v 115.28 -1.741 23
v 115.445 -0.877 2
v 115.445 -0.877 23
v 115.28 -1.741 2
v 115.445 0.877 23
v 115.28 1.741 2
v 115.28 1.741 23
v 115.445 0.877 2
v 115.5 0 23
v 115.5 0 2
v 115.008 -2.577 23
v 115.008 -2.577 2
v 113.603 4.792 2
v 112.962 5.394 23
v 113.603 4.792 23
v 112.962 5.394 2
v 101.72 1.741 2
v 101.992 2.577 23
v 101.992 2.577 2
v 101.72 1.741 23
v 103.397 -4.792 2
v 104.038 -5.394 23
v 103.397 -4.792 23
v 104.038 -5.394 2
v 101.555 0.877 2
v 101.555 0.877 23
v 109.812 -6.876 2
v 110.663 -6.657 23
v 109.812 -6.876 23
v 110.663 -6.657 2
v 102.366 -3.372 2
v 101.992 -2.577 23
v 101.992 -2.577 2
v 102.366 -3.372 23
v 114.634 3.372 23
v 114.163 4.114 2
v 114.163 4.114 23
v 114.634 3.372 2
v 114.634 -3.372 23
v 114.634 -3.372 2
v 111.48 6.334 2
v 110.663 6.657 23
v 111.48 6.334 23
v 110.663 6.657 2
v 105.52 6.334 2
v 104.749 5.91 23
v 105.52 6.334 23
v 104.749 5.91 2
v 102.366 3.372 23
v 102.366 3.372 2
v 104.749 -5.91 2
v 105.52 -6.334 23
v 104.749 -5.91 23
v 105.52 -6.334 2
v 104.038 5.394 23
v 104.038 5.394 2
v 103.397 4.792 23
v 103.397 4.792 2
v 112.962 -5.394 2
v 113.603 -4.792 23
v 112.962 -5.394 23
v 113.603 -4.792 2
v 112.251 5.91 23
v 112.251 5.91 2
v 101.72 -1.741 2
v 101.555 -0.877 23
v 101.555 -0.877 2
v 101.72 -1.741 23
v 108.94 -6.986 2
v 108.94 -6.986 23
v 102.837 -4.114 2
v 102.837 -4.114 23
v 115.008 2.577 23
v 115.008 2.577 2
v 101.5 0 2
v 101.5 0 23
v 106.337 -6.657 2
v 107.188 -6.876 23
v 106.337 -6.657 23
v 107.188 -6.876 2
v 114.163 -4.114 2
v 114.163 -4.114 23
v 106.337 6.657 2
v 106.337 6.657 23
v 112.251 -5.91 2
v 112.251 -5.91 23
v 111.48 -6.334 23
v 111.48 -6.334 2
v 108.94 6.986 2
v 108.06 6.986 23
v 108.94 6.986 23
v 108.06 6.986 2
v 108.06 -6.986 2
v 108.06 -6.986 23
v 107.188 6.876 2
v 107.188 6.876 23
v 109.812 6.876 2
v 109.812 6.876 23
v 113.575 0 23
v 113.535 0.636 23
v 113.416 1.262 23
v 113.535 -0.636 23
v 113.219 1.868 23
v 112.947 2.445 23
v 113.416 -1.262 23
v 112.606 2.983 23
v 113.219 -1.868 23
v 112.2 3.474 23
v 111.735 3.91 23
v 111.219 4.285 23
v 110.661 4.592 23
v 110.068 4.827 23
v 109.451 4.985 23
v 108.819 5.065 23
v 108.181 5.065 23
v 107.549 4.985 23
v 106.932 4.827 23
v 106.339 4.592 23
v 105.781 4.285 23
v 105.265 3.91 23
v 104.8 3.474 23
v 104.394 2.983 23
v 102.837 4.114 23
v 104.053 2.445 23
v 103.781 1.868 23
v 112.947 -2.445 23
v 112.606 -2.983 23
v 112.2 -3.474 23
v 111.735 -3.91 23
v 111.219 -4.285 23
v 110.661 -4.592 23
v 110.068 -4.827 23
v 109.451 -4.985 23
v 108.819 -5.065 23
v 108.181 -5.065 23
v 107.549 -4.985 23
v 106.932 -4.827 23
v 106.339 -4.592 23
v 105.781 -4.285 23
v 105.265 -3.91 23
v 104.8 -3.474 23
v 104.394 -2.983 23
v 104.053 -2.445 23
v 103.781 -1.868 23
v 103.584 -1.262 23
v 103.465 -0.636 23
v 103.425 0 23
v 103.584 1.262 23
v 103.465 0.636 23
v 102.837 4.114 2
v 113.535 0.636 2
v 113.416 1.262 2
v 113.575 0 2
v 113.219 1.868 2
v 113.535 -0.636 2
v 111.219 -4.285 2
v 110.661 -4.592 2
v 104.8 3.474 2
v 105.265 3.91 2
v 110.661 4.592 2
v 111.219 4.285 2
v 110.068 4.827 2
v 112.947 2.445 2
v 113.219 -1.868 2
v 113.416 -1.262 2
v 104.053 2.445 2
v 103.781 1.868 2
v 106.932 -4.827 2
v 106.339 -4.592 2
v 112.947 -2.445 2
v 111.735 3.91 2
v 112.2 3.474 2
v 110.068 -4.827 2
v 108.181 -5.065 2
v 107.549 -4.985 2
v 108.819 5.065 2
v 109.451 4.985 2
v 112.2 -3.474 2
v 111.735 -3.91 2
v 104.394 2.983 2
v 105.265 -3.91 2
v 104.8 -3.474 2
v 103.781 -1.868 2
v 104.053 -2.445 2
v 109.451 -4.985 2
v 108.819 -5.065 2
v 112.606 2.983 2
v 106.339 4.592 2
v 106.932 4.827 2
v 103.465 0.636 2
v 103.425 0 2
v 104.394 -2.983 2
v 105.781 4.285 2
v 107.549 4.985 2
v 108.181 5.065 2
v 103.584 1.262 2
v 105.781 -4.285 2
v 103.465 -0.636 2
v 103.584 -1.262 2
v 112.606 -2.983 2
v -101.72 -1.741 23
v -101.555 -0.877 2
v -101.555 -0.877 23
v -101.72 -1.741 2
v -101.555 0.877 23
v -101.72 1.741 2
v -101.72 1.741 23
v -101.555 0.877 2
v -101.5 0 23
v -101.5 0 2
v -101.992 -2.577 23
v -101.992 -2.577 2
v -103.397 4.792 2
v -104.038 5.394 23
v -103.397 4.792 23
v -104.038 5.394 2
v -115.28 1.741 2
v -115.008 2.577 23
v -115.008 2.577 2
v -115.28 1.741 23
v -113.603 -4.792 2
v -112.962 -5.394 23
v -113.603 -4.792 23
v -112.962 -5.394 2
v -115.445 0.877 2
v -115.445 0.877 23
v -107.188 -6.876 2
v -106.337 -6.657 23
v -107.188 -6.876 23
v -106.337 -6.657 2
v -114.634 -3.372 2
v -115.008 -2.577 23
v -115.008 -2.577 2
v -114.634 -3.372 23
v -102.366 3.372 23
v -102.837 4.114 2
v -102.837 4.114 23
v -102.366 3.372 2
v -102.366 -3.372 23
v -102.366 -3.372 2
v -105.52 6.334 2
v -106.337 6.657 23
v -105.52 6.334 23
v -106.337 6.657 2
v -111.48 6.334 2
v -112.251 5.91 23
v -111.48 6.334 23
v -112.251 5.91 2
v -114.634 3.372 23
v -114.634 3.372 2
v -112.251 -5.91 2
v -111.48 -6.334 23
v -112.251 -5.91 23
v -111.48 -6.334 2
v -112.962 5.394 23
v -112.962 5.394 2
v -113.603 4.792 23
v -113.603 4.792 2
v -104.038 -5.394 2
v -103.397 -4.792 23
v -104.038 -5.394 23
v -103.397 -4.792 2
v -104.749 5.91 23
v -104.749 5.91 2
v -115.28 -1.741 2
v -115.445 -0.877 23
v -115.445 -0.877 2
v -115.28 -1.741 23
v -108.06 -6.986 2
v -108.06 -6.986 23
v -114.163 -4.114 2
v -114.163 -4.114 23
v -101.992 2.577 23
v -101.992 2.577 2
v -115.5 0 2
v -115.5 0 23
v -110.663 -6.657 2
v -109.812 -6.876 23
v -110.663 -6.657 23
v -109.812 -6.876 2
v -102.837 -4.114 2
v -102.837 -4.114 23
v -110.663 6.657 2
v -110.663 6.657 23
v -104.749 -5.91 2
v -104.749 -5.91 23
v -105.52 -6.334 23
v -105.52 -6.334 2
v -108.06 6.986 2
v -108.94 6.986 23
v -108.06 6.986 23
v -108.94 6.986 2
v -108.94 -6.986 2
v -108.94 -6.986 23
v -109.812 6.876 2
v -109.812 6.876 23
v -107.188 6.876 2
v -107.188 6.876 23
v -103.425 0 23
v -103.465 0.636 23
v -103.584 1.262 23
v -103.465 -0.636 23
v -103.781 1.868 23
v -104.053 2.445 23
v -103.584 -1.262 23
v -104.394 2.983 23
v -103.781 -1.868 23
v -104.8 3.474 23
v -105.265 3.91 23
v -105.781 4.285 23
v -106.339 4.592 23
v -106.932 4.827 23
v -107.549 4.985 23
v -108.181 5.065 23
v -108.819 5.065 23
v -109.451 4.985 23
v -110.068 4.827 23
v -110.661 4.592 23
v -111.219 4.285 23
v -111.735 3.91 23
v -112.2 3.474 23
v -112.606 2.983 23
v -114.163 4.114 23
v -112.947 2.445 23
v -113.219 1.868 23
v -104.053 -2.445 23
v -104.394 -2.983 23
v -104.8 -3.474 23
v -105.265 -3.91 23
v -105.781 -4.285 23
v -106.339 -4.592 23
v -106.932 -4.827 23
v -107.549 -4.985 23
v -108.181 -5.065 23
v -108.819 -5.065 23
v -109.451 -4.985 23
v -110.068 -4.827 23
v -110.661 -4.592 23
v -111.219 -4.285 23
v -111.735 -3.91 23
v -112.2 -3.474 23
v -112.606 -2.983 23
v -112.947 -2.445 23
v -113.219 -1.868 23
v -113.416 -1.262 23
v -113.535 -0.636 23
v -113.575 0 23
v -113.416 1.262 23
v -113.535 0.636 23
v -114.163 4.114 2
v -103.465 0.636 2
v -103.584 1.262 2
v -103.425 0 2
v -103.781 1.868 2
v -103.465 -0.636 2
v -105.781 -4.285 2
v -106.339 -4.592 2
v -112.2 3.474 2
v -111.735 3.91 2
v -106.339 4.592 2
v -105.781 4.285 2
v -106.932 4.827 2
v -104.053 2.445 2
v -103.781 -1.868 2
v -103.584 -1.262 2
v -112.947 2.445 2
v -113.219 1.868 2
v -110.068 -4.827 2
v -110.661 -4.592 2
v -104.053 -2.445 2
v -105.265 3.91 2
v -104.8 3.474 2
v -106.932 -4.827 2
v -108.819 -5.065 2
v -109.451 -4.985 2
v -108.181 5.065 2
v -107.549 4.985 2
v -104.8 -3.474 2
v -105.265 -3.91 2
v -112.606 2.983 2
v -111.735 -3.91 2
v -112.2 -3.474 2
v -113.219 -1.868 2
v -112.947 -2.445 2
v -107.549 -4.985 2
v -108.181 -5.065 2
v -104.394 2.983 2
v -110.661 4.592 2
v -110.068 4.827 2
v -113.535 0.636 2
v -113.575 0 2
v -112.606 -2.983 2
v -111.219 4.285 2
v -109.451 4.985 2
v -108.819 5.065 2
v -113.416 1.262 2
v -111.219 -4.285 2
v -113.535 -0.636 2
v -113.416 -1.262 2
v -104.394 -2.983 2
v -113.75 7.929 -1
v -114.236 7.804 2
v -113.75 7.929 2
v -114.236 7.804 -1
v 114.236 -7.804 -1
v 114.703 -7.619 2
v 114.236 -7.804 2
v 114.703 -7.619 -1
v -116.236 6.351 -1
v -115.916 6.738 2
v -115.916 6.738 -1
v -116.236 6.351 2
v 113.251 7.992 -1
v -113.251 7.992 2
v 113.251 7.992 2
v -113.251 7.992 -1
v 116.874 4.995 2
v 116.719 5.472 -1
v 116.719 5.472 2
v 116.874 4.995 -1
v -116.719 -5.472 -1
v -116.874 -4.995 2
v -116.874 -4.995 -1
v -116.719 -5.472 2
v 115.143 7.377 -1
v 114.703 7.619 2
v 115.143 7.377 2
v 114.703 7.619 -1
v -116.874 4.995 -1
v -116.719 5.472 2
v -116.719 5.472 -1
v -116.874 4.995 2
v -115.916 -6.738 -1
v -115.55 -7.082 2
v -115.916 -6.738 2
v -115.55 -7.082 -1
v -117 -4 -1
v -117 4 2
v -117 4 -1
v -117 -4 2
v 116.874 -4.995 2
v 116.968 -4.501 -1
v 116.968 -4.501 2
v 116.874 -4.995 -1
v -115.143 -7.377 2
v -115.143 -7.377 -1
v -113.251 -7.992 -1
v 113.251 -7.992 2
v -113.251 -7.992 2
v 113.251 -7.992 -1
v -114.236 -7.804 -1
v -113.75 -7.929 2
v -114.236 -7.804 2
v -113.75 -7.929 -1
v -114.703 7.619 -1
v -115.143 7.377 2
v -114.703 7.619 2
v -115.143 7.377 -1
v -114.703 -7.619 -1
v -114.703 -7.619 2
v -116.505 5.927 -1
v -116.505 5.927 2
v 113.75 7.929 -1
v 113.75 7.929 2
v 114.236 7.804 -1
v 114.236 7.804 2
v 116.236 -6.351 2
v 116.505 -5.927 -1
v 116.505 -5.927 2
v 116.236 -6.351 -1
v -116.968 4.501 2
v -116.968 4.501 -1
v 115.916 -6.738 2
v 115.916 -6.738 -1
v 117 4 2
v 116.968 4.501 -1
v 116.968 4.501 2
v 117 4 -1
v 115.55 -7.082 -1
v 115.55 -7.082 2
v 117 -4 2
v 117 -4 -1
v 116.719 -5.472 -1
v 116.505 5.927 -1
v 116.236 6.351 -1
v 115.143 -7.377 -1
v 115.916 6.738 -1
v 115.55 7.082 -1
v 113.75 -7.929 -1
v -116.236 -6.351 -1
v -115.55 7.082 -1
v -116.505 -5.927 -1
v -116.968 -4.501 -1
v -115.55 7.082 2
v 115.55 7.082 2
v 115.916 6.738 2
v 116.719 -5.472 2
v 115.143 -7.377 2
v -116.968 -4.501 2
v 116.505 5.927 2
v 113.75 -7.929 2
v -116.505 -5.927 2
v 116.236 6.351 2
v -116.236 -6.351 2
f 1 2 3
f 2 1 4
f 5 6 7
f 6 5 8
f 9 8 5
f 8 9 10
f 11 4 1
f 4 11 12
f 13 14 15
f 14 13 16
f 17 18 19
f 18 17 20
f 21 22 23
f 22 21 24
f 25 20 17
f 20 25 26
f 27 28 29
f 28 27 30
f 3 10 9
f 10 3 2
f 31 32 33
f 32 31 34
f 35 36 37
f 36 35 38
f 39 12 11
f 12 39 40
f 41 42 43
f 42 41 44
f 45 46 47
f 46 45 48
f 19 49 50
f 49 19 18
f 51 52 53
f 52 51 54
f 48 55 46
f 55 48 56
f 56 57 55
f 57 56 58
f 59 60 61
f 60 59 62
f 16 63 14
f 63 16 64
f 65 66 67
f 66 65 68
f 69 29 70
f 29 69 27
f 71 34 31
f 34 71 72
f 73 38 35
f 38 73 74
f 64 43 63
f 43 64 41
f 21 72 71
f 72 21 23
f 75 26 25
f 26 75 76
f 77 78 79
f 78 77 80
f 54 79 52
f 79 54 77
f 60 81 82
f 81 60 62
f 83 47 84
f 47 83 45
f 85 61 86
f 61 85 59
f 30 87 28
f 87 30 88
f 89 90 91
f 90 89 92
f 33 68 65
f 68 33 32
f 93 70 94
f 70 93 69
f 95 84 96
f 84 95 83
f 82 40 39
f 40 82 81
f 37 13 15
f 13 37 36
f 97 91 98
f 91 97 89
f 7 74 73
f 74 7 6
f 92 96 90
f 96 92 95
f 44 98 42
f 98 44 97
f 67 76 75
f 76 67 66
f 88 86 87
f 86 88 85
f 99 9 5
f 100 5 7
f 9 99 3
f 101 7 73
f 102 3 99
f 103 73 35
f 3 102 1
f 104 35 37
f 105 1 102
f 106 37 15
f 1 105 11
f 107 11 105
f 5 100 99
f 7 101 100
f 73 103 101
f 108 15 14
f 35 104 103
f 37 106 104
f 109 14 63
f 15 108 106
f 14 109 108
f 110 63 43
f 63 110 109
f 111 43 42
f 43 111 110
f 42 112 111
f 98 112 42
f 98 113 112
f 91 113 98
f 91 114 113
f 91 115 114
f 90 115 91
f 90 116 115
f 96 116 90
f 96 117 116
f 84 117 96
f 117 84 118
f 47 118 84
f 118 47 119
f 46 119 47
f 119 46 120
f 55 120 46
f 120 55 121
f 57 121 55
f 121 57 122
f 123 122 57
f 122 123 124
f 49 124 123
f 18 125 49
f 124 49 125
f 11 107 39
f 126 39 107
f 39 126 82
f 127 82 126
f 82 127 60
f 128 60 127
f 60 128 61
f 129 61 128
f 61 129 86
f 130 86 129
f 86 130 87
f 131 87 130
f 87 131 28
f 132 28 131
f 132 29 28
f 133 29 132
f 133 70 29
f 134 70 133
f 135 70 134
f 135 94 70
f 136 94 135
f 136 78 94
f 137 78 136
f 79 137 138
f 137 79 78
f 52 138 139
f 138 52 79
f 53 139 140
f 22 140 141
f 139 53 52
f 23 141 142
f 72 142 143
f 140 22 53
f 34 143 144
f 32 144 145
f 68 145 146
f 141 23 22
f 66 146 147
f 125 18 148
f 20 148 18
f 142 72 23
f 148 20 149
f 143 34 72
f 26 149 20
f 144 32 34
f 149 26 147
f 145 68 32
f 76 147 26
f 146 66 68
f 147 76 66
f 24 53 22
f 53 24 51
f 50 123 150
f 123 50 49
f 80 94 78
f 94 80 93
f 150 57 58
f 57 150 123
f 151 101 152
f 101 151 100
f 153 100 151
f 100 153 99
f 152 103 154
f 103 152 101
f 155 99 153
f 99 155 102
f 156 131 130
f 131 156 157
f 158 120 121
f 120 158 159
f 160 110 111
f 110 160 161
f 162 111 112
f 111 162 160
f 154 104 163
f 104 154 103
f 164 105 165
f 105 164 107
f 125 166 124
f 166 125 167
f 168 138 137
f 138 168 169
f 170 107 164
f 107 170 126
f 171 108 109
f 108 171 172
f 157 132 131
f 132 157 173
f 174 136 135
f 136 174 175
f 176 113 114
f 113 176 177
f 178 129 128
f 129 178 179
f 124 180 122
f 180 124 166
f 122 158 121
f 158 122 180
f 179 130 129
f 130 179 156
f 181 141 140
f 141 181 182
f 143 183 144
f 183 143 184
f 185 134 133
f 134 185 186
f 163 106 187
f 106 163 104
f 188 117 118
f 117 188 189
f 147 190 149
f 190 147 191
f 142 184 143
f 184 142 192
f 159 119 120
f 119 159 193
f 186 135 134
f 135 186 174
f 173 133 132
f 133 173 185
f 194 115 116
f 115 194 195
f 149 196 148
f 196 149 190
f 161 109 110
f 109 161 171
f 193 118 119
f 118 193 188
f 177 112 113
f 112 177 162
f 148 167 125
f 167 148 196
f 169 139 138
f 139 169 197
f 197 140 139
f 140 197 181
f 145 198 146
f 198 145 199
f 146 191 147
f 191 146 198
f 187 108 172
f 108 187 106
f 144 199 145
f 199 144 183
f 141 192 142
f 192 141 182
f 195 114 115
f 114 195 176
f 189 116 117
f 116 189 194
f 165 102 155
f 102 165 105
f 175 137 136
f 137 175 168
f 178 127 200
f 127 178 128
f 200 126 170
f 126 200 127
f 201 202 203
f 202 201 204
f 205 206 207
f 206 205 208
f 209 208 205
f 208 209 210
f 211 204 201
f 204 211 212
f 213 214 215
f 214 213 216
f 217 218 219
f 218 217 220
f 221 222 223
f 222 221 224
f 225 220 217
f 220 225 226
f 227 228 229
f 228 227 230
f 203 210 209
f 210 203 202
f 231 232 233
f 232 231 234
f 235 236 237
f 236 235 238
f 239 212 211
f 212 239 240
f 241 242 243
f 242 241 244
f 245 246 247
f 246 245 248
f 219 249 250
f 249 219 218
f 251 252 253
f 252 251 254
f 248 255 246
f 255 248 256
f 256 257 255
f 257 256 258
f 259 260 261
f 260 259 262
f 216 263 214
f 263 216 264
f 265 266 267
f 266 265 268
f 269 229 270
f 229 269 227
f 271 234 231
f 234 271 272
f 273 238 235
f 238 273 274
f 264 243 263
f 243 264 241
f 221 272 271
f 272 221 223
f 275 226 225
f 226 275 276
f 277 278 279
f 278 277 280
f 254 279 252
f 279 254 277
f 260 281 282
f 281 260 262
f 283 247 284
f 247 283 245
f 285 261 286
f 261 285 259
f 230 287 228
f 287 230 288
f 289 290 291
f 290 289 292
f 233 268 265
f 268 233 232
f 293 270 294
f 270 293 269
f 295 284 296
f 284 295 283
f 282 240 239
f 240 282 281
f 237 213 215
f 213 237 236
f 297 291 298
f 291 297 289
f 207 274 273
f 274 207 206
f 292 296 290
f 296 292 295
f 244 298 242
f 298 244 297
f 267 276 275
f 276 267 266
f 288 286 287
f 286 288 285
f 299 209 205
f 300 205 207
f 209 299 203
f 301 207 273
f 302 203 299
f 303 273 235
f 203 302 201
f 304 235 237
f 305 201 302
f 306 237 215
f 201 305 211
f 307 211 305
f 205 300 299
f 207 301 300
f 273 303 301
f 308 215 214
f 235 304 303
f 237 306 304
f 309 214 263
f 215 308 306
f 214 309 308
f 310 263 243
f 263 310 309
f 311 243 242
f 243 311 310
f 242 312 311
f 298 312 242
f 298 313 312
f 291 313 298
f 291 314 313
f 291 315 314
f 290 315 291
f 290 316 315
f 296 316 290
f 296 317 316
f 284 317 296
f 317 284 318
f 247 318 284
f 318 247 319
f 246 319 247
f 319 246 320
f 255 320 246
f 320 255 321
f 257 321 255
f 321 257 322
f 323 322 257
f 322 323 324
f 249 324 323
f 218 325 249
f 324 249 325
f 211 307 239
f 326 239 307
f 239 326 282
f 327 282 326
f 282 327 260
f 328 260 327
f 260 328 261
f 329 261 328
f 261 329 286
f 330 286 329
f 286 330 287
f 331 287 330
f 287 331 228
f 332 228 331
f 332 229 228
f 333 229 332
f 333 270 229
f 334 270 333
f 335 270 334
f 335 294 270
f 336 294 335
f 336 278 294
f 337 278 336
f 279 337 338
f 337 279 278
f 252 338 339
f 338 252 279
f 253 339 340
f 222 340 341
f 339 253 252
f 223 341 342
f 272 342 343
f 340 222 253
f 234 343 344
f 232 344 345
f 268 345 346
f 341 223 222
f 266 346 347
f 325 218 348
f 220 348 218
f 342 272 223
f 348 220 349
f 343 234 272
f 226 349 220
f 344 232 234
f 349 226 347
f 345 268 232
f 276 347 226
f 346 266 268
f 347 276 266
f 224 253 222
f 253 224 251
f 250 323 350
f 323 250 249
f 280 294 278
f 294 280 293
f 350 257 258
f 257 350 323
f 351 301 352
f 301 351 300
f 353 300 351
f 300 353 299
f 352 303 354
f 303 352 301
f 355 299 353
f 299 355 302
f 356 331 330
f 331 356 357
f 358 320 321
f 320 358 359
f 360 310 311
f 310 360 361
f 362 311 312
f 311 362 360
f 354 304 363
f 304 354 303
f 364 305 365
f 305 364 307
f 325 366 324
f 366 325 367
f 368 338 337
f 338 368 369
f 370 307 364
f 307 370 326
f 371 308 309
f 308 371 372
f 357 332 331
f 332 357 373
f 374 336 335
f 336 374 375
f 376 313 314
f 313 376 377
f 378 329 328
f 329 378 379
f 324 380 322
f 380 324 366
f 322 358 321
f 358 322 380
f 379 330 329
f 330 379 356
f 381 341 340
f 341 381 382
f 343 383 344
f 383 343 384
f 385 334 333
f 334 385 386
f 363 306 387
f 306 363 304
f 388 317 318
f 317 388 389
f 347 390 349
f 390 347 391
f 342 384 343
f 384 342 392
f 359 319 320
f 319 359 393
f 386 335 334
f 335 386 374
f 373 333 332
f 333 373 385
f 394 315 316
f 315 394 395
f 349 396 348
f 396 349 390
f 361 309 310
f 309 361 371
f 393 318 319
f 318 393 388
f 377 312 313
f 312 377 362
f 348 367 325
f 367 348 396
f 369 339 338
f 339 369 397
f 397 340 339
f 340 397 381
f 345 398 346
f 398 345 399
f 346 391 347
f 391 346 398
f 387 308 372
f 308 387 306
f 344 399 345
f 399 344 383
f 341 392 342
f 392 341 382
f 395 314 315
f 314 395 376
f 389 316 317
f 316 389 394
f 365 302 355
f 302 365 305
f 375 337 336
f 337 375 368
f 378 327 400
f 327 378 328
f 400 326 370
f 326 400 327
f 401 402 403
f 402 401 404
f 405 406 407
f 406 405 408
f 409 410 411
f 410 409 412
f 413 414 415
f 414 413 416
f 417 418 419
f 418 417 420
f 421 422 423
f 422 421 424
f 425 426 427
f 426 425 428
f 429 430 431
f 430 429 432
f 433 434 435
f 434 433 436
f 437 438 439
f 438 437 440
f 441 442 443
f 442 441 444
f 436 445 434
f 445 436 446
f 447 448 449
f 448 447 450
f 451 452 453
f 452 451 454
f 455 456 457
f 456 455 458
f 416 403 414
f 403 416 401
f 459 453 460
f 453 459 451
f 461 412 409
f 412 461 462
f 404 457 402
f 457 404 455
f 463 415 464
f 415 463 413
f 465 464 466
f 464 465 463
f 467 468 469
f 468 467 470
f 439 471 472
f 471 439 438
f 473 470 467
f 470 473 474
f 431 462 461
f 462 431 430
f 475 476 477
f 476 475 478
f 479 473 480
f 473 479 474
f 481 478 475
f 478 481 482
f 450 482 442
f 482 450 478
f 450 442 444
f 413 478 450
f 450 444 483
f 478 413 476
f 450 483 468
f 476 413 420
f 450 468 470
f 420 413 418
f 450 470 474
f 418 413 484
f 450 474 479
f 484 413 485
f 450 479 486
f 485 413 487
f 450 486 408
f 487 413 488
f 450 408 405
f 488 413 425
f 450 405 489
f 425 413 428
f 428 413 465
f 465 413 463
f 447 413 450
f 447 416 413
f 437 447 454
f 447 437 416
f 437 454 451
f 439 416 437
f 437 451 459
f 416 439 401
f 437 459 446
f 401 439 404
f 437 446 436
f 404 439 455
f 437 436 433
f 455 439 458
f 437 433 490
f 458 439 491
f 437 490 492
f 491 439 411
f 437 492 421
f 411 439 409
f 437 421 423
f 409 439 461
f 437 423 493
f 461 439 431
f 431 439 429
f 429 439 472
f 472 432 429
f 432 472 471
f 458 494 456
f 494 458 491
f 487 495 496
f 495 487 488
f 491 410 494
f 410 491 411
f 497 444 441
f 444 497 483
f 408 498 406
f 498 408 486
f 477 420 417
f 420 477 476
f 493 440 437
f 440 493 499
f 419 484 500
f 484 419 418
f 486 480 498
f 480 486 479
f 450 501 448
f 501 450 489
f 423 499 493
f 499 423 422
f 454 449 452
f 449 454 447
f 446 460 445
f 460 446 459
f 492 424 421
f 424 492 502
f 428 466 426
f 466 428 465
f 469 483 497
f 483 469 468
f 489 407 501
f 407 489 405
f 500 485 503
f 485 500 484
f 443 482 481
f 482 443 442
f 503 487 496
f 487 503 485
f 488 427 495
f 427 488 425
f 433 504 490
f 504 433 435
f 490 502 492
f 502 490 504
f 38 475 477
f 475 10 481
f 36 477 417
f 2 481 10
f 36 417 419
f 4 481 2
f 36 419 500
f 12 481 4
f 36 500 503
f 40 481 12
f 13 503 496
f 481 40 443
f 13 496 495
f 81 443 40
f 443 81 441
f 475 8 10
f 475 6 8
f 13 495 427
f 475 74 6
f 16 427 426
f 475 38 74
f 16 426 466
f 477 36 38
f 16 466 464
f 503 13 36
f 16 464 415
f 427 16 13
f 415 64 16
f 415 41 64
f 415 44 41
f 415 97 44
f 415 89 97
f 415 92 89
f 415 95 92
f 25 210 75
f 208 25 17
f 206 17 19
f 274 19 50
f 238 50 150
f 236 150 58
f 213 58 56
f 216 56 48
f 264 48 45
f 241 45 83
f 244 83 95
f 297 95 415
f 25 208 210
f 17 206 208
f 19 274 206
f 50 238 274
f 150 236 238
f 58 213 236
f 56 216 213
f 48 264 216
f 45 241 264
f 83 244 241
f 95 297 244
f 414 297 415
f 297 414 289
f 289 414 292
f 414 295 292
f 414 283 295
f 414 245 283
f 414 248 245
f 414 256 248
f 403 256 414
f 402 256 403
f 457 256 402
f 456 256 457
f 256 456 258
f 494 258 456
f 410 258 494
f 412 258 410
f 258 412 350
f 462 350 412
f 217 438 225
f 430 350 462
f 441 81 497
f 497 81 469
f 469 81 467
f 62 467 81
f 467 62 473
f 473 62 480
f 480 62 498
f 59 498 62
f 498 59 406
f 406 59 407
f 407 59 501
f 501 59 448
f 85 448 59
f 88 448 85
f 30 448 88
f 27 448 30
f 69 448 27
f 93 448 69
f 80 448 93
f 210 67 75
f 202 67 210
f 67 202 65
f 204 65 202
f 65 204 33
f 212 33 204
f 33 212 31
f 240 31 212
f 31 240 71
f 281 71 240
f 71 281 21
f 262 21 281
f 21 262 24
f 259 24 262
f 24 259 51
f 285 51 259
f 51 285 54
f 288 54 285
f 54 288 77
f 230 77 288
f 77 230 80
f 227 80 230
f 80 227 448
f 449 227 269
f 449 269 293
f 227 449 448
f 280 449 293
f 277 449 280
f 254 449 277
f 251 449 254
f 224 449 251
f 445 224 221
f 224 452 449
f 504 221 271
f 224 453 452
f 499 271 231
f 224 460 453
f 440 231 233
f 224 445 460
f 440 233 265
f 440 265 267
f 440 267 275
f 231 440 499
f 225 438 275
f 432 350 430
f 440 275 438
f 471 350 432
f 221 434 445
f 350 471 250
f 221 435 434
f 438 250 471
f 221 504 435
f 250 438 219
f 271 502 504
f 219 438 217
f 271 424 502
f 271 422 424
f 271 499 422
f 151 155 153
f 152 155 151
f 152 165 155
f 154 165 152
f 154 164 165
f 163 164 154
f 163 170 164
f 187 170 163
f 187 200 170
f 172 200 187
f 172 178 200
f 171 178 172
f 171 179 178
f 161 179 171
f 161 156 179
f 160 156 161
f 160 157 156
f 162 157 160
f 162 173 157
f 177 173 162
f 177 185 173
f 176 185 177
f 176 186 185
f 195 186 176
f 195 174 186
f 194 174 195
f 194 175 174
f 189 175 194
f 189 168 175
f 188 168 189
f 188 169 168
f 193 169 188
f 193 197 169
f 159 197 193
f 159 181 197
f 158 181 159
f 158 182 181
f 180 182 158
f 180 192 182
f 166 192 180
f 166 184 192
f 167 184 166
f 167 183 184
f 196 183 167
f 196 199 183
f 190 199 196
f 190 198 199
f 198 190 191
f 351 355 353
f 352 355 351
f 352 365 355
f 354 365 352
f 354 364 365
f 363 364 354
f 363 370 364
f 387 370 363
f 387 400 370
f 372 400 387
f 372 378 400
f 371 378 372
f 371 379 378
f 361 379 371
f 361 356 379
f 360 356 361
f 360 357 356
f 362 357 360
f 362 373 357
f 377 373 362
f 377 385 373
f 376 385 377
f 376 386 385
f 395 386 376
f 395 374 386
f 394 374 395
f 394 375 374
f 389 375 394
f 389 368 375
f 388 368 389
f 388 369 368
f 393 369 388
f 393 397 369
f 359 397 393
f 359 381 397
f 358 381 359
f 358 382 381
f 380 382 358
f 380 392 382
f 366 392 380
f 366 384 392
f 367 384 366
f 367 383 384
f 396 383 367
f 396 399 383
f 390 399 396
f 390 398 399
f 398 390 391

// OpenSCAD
$fn =50;

module hole() { 
    translate([0,0,12]) {
        difference() {
            cylinder(h=22,d=14,center=true);
            cylinder(h=22,d=10.15,center=true);
        }
    }
}



w = 108.5;
h = 0;

translate([w,h,0]) {
    hole();
}
translate([-w,h,0]) {
    hole();
}

minkowski()
{
  cube([226,8,2],true);
  cylinder(r=4,h=1);
}
